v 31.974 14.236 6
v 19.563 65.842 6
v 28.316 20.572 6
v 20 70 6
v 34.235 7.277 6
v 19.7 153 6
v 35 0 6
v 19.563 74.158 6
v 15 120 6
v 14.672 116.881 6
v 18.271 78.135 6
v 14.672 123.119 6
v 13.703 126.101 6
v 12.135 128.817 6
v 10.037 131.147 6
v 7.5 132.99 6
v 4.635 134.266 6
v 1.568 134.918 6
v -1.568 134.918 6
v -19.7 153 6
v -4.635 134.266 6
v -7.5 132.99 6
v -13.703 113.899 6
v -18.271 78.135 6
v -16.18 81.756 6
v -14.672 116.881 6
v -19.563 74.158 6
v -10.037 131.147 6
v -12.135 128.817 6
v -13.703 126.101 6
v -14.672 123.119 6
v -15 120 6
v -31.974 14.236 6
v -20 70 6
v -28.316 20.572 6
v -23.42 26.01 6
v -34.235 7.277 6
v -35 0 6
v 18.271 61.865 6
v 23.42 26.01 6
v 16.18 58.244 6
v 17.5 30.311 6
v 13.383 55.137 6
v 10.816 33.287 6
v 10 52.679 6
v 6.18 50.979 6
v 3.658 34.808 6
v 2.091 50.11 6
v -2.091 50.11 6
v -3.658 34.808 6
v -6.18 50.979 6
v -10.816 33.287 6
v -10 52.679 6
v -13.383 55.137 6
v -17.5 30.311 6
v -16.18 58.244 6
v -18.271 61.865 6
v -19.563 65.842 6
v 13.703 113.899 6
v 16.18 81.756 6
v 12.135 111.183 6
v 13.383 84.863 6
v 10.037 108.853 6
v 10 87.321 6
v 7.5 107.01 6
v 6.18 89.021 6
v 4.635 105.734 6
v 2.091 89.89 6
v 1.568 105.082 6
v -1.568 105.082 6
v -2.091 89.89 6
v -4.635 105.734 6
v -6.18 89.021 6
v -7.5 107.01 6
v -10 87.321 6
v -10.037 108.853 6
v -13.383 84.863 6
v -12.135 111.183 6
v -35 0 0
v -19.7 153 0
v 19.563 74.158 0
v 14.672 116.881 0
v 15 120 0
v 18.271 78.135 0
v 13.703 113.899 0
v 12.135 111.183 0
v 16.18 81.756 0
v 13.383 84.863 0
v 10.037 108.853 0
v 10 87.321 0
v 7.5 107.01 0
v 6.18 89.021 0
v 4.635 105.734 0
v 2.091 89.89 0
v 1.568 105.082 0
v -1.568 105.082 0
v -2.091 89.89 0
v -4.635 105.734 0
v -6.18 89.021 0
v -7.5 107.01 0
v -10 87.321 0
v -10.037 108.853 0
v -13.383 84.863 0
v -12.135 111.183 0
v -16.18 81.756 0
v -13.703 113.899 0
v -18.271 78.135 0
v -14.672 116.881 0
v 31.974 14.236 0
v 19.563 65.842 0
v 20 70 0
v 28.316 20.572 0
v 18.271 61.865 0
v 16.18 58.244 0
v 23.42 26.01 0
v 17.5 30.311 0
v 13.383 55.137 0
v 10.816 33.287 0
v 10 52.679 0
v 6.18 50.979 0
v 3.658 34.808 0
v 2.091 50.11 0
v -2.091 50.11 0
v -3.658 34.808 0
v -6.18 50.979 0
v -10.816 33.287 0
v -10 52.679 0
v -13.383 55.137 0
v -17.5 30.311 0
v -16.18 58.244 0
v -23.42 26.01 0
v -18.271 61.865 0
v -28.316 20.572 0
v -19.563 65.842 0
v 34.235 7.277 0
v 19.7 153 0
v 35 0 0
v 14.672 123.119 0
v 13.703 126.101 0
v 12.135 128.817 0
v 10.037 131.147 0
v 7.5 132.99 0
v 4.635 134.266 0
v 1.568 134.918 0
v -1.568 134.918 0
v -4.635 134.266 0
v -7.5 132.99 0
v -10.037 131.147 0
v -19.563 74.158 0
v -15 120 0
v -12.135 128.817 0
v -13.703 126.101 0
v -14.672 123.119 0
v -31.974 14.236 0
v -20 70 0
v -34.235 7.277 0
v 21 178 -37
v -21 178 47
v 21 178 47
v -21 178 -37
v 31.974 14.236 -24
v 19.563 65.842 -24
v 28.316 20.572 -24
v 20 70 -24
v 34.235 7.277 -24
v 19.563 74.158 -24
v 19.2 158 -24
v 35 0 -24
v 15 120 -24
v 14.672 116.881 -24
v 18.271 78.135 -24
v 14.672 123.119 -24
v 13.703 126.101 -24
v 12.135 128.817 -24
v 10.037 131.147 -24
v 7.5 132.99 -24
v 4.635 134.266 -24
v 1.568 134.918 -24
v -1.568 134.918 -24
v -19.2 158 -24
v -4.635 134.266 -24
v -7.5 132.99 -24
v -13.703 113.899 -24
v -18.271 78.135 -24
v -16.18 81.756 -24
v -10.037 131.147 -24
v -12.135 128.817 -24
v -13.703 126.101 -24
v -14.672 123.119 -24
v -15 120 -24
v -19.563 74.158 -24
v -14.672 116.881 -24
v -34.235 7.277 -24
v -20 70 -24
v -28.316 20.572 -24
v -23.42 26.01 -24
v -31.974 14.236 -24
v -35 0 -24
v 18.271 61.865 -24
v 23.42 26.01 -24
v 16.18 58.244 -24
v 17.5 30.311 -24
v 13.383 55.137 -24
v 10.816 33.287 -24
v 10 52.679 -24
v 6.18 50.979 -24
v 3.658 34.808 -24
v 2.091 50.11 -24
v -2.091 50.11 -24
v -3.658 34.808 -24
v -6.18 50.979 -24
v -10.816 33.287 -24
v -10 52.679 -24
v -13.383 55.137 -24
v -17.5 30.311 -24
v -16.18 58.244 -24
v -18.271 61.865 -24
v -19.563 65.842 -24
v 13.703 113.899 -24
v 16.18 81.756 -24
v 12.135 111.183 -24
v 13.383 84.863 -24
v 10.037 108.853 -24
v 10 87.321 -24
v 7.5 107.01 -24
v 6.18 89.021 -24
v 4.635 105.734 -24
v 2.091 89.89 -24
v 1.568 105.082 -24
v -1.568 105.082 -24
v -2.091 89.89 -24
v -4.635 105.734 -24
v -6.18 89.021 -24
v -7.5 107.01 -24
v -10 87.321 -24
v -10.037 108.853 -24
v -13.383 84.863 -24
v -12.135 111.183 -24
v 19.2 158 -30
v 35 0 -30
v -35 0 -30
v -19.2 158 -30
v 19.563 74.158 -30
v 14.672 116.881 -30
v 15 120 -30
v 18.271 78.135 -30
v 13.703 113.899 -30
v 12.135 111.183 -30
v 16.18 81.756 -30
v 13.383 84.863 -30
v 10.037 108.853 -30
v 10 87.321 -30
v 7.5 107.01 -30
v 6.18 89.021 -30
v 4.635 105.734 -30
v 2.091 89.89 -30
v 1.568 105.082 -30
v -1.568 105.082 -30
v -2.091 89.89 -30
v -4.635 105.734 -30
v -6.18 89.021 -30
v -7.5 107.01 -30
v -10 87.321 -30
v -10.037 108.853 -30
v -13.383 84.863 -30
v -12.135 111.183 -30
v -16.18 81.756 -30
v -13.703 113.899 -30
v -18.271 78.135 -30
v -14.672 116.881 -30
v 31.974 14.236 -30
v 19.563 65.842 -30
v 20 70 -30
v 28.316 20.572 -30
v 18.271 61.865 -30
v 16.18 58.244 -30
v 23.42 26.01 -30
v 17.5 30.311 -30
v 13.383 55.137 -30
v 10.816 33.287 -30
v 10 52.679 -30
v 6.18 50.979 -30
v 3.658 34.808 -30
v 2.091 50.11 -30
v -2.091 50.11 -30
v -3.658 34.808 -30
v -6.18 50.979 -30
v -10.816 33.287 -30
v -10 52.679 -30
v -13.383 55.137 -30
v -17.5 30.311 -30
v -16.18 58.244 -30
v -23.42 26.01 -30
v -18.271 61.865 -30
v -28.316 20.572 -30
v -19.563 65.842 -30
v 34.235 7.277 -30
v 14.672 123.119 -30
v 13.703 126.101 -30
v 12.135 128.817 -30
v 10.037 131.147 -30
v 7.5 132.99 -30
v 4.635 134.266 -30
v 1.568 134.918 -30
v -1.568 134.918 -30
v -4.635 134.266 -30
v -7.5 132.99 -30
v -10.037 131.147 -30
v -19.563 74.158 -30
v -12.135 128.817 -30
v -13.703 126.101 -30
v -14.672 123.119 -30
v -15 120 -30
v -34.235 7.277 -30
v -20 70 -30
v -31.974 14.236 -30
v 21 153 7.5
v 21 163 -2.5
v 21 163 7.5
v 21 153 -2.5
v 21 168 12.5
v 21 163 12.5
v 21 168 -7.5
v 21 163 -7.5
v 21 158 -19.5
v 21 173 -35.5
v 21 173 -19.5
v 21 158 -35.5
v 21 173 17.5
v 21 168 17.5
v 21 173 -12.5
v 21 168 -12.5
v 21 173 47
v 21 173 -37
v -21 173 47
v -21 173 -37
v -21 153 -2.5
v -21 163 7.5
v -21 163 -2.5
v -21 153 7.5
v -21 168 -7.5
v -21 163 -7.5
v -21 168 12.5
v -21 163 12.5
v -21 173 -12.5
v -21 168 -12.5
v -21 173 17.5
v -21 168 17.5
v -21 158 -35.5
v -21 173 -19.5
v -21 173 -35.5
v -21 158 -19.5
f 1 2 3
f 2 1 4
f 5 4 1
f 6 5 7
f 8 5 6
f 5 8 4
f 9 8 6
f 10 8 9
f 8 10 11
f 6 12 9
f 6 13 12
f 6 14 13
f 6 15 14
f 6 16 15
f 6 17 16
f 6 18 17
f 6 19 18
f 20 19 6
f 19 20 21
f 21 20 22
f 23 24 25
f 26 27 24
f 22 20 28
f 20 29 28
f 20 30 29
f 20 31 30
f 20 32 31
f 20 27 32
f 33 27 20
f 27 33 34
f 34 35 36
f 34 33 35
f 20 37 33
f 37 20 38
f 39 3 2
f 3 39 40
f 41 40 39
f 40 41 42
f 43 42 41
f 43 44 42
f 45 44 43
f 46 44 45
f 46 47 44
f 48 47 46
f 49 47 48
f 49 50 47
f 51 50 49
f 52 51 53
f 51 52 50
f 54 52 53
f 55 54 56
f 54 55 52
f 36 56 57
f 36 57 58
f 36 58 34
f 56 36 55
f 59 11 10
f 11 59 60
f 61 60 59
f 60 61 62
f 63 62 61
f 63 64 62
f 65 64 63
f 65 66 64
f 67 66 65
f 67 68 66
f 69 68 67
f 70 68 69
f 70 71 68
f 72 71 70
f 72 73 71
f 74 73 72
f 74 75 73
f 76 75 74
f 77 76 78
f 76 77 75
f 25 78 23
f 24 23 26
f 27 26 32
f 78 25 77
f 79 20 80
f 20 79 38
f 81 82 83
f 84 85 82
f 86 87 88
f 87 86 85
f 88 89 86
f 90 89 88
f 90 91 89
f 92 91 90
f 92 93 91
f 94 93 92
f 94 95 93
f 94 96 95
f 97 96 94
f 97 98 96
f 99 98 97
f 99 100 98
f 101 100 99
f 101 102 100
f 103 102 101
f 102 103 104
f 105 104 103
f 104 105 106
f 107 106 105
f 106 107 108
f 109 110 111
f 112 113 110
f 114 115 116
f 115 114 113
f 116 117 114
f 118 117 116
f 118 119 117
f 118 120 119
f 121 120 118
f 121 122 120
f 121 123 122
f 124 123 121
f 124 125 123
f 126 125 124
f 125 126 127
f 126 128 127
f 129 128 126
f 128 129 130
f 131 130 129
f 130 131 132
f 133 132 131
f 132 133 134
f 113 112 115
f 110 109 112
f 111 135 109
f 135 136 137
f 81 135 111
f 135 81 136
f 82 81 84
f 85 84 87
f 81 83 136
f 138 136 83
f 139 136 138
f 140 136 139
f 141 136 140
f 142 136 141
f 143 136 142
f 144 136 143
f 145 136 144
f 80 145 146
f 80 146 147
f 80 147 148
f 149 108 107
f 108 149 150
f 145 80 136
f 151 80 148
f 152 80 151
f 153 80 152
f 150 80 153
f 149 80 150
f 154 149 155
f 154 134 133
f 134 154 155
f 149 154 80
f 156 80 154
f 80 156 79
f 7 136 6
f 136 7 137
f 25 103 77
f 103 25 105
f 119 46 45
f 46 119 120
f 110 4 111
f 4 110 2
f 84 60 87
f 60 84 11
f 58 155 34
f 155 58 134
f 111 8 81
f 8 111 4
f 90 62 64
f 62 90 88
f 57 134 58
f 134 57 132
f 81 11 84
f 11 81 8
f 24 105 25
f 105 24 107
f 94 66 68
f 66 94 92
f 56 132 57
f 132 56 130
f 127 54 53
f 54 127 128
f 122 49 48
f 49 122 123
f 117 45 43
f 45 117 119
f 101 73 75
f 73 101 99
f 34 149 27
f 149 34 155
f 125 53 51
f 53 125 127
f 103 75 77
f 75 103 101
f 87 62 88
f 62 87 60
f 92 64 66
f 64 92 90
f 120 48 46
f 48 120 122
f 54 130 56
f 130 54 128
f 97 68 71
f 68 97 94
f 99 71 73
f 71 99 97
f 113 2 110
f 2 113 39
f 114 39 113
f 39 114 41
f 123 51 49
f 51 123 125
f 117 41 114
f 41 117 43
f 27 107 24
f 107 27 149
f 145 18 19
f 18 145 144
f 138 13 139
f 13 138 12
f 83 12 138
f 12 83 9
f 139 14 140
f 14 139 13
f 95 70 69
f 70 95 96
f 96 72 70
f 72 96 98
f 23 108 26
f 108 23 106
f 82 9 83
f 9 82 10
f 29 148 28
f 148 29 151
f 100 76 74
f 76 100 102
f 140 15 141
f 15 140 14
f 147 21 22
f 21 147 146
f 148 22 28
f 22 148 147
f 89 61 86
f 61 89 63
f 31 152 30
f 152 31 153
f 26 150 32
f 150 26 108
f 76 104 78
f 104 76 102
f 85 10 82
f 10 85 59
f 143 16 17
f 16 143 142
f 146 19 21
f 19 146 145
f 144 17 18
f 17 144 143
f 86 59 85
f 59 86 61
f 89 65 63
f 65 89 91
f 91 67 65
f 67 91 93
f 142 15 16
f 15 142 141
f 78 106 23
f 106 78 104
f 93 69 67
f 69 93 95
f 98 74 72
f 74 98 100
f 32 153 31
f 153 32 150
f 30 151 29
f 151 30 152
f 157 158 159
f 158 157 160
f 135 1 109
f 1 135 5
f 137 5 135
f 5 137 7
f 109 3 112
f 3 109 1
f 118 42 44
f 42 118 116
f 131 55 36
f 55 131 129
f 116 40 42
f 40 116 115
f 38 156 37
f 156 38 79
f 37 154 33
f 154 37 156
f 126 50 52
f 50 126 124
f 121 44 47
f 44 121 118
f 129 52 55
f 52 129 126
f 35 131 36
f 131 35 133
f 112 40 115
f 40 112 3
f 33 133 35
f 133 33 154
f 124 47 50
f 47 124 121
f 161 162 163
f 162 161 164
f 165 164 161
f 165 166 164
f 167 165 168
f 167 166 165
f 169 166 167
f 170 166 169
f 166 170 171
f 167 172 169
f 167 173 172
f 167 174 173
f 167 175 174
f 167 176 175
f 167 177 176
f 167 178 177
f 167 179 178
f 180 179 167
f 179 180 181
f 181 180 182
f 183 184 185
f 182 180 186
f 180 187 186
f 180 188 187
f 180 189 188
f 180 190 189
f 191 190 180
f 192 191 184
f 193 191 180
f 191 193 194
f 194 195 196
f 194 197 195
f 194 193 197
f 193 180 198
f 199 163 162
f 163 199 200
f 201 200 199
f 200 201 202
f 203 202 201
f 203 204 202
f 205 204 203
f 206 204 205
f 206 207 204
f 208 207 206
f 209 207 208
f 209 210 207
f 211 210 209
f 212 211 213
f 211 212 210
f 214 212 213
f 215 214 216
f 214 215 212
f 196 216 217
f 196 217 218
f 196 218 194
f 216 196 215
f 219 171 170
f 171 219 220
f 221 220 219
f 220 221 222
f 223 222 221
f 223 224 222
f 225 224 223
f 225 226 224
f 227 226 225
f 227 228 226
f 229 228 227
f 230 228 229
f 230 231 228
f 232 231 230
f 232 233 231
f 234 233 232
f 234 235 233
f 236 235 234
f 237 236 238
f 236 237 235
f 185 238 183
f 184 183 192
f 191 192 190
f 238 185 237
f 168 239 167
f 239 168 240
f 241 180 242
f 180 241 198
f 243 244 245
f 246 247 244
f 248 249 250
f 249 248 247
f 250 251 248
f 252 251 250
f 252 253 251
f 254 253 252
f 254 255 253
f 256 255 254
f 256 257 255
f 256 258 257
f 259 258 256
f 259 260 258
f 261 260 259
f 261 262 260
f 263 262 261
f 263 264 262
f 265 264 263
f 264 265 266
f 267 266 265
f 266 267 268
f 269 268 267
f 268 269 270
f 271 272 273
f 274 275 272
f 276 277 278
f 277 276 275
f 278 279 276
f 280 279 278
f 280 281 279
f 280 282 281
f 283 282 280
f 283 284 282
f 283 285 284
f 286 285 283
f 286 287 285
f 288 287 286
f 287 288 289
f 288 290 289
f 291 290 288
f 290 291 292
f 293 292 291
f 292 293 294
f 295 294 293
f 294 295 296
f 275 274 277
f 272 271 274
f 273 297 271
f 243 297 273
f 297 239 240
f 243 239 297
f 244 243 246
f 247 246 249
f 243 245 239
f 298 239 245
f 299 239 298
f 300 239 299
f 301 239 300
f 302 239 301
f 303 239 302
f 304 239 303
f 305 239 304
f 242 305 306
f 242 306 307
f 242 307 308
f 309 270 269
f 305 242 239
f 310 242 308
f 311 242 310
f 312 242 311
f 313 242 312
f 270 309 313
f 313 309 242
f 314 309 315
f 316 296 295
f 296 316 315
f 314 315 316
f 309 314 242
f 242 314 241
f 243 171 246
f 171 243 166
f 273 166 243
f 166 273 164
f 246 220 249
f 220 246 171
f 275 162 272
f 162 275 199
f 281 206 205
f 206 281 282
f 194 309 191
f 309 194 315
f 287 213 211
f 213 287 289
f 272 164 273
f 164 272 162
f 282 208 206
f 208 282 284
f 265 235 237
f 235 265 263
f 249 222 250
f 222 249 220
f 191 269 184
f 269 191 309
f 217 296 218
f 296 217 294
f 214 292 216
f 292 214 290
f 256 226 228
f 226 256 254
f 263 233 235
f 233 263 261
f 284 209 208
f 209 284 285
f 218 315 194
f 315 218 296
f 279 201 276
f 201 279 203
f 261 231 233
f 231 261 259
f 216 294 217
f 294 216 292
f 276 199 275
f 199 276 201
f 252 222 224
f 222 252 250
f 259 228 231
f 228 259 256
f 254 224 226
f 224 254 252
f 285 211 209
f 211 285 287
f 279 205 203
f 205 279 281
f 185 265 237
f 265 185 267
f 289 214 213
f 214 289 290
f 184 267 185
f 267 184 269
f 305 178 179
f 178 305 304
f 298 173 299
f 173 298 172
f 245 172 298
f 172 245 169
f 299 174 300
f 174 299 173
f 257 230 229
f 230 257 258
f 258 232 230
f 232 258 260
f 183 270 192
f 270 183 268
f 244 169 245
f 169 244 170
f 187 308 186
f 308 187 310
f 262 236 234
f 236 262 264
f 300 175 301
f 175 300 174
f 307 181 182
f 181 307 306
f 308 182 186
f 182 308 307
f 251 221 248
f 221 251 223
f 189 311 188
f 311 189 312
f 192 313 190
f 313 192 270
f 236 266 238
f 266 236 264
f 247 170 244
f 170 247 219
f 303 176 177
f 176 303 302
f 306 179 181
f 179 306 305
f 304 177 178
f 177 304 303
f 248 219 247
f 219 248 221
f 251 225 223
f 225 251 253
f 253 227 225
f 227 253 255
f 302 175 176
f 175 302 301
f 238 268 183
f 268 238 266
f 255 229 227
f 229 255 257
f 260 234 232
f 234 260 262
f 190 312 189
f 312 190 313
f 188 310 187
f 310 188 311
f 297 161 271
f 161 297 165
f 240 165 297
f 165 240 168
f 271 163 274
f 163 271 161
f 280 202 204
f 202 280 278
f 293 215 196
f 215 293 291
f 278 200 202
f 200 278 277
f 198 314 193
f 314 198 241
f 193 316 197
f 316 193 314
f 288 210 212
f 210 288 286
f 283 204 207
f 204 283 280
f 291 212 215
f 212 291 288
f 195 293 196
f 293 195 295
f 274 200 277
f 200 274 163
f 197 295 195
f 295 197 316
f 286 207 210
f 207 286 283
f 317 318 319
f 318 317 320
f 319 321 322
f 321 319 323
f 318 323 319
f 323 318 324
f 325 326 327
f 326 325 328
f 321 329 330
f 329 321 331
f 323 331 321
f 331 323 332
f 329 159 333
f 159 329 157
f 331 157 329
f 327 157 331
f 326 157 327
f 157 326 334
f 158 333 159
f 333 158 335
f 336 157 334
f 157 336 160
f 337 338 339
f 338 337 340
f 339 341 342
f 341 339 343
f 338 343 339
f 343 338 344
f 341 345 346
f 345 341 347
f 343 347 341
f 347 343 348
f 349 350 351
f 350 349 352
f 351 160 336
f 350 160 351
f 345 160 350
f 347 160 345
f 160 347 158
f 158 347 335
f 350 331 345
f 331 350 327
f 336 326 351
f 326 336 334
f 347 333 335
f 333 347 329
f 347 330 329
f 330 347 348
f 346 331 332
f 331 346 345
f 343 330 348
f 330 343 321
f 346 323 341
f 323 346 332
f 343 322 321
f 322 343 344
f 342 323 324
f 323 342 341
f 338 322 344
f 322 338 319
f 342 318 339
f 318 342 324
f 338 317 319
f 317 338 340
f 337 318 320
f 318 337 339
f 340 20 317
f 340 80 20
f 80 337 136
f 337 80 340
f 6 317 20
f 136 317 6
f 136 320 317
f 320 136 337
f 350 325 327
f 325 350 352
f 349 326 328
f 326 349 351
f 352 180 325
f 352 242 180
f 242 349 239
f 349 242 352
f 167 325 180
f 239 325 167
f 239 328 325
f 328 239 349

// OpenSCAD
//difference(){
//translate([0,250,0])
//cylinder(h=10,d=20,center=true);
//translate([0,250,0])
//cylinder(h=20,d=4,center=true);}

 difference(){
linear_extrude(6)
polygon(points=[
[-35,0],
[35,0],
[10,250],
[-10,250]
]);

translate([0,70,0])
cylinder(h=20,d=40,center=true);

translate([0,120,0])
cylinder(h=20,d=30,center=true);

//translate([0,160,0])
//cylinder(h=20,d=25,center=true);

color("red")
translate([0,200,0])
cylinder(h=20,d=20,center=true);



color("red")
translate([0,200-1+5+20+50,5])
//translate([0,0,0])
cube([42,42+10+40+100,42],center=true);
 

translate([0,230,0])
cylinder(h=20,d=10,center=true);

translate([0,0,5])
cylinder(h=20,d=70,center=true);

translate([0,250,0])
cylinder(h=20,d=4,center=true);
 }
 
 
 
 
 

color("blue")
translate([0,200-2.5-42/2-1, 5])
cube([42,5,84],center=true);

color("red")
translate([0,200-2.5-42/2-1-5, 5-2.5])
cube([42,5,30],center=true);

color("blue")
translate([0,200-2.5-42/2-1-5-5, 5-2.5])
cube([42,5,20],center=true);


color("red")
translate([0,200-2.5-42/2-1-5-5-5, 5-2.5])
cube([42,5+5+5,10],center=true);

//
//color("red")
//translate([0,200-2.5-42/2-1-5-5-5-5-2.5, 5-2.5])
//cube([42,0.01,100],center=true);






color("red")
translate([0,200-2.5-42/2-1-5-5, 5-2.5-25-5])
cube([42,5+10,30-14],center=true);

translate([0,0,-30]){
 difference(){
linear_extrude(6)
polygon(points=[
[-35,0],
[35,0],
[10,250],
[-10,250]
]);

translate([0,70,0])
cylinder(h=20,d=40,center=true);

translate([0,120,0])
cylinder(h=20,d=30,center=true);

//translate([0,160,0])
//cylinder(h=20,d=25,center=true);

color("red")
translate([0,200,0])
cylinder(h=20,d=20,center=true);



color("red")
translate([0,200-1+5+20+50,5])
//translate([0,0,0])
cube([42,42+10+40+100,42],center=true);
 

translate([0,230,0])
cylinder(h=20,d=10,center=true);

translate([0,0,5])
cylinder(h=20,d=70,center=true);

translate([0,250,0])
cylinder(h=20,d=4,center=true);
 }
}
